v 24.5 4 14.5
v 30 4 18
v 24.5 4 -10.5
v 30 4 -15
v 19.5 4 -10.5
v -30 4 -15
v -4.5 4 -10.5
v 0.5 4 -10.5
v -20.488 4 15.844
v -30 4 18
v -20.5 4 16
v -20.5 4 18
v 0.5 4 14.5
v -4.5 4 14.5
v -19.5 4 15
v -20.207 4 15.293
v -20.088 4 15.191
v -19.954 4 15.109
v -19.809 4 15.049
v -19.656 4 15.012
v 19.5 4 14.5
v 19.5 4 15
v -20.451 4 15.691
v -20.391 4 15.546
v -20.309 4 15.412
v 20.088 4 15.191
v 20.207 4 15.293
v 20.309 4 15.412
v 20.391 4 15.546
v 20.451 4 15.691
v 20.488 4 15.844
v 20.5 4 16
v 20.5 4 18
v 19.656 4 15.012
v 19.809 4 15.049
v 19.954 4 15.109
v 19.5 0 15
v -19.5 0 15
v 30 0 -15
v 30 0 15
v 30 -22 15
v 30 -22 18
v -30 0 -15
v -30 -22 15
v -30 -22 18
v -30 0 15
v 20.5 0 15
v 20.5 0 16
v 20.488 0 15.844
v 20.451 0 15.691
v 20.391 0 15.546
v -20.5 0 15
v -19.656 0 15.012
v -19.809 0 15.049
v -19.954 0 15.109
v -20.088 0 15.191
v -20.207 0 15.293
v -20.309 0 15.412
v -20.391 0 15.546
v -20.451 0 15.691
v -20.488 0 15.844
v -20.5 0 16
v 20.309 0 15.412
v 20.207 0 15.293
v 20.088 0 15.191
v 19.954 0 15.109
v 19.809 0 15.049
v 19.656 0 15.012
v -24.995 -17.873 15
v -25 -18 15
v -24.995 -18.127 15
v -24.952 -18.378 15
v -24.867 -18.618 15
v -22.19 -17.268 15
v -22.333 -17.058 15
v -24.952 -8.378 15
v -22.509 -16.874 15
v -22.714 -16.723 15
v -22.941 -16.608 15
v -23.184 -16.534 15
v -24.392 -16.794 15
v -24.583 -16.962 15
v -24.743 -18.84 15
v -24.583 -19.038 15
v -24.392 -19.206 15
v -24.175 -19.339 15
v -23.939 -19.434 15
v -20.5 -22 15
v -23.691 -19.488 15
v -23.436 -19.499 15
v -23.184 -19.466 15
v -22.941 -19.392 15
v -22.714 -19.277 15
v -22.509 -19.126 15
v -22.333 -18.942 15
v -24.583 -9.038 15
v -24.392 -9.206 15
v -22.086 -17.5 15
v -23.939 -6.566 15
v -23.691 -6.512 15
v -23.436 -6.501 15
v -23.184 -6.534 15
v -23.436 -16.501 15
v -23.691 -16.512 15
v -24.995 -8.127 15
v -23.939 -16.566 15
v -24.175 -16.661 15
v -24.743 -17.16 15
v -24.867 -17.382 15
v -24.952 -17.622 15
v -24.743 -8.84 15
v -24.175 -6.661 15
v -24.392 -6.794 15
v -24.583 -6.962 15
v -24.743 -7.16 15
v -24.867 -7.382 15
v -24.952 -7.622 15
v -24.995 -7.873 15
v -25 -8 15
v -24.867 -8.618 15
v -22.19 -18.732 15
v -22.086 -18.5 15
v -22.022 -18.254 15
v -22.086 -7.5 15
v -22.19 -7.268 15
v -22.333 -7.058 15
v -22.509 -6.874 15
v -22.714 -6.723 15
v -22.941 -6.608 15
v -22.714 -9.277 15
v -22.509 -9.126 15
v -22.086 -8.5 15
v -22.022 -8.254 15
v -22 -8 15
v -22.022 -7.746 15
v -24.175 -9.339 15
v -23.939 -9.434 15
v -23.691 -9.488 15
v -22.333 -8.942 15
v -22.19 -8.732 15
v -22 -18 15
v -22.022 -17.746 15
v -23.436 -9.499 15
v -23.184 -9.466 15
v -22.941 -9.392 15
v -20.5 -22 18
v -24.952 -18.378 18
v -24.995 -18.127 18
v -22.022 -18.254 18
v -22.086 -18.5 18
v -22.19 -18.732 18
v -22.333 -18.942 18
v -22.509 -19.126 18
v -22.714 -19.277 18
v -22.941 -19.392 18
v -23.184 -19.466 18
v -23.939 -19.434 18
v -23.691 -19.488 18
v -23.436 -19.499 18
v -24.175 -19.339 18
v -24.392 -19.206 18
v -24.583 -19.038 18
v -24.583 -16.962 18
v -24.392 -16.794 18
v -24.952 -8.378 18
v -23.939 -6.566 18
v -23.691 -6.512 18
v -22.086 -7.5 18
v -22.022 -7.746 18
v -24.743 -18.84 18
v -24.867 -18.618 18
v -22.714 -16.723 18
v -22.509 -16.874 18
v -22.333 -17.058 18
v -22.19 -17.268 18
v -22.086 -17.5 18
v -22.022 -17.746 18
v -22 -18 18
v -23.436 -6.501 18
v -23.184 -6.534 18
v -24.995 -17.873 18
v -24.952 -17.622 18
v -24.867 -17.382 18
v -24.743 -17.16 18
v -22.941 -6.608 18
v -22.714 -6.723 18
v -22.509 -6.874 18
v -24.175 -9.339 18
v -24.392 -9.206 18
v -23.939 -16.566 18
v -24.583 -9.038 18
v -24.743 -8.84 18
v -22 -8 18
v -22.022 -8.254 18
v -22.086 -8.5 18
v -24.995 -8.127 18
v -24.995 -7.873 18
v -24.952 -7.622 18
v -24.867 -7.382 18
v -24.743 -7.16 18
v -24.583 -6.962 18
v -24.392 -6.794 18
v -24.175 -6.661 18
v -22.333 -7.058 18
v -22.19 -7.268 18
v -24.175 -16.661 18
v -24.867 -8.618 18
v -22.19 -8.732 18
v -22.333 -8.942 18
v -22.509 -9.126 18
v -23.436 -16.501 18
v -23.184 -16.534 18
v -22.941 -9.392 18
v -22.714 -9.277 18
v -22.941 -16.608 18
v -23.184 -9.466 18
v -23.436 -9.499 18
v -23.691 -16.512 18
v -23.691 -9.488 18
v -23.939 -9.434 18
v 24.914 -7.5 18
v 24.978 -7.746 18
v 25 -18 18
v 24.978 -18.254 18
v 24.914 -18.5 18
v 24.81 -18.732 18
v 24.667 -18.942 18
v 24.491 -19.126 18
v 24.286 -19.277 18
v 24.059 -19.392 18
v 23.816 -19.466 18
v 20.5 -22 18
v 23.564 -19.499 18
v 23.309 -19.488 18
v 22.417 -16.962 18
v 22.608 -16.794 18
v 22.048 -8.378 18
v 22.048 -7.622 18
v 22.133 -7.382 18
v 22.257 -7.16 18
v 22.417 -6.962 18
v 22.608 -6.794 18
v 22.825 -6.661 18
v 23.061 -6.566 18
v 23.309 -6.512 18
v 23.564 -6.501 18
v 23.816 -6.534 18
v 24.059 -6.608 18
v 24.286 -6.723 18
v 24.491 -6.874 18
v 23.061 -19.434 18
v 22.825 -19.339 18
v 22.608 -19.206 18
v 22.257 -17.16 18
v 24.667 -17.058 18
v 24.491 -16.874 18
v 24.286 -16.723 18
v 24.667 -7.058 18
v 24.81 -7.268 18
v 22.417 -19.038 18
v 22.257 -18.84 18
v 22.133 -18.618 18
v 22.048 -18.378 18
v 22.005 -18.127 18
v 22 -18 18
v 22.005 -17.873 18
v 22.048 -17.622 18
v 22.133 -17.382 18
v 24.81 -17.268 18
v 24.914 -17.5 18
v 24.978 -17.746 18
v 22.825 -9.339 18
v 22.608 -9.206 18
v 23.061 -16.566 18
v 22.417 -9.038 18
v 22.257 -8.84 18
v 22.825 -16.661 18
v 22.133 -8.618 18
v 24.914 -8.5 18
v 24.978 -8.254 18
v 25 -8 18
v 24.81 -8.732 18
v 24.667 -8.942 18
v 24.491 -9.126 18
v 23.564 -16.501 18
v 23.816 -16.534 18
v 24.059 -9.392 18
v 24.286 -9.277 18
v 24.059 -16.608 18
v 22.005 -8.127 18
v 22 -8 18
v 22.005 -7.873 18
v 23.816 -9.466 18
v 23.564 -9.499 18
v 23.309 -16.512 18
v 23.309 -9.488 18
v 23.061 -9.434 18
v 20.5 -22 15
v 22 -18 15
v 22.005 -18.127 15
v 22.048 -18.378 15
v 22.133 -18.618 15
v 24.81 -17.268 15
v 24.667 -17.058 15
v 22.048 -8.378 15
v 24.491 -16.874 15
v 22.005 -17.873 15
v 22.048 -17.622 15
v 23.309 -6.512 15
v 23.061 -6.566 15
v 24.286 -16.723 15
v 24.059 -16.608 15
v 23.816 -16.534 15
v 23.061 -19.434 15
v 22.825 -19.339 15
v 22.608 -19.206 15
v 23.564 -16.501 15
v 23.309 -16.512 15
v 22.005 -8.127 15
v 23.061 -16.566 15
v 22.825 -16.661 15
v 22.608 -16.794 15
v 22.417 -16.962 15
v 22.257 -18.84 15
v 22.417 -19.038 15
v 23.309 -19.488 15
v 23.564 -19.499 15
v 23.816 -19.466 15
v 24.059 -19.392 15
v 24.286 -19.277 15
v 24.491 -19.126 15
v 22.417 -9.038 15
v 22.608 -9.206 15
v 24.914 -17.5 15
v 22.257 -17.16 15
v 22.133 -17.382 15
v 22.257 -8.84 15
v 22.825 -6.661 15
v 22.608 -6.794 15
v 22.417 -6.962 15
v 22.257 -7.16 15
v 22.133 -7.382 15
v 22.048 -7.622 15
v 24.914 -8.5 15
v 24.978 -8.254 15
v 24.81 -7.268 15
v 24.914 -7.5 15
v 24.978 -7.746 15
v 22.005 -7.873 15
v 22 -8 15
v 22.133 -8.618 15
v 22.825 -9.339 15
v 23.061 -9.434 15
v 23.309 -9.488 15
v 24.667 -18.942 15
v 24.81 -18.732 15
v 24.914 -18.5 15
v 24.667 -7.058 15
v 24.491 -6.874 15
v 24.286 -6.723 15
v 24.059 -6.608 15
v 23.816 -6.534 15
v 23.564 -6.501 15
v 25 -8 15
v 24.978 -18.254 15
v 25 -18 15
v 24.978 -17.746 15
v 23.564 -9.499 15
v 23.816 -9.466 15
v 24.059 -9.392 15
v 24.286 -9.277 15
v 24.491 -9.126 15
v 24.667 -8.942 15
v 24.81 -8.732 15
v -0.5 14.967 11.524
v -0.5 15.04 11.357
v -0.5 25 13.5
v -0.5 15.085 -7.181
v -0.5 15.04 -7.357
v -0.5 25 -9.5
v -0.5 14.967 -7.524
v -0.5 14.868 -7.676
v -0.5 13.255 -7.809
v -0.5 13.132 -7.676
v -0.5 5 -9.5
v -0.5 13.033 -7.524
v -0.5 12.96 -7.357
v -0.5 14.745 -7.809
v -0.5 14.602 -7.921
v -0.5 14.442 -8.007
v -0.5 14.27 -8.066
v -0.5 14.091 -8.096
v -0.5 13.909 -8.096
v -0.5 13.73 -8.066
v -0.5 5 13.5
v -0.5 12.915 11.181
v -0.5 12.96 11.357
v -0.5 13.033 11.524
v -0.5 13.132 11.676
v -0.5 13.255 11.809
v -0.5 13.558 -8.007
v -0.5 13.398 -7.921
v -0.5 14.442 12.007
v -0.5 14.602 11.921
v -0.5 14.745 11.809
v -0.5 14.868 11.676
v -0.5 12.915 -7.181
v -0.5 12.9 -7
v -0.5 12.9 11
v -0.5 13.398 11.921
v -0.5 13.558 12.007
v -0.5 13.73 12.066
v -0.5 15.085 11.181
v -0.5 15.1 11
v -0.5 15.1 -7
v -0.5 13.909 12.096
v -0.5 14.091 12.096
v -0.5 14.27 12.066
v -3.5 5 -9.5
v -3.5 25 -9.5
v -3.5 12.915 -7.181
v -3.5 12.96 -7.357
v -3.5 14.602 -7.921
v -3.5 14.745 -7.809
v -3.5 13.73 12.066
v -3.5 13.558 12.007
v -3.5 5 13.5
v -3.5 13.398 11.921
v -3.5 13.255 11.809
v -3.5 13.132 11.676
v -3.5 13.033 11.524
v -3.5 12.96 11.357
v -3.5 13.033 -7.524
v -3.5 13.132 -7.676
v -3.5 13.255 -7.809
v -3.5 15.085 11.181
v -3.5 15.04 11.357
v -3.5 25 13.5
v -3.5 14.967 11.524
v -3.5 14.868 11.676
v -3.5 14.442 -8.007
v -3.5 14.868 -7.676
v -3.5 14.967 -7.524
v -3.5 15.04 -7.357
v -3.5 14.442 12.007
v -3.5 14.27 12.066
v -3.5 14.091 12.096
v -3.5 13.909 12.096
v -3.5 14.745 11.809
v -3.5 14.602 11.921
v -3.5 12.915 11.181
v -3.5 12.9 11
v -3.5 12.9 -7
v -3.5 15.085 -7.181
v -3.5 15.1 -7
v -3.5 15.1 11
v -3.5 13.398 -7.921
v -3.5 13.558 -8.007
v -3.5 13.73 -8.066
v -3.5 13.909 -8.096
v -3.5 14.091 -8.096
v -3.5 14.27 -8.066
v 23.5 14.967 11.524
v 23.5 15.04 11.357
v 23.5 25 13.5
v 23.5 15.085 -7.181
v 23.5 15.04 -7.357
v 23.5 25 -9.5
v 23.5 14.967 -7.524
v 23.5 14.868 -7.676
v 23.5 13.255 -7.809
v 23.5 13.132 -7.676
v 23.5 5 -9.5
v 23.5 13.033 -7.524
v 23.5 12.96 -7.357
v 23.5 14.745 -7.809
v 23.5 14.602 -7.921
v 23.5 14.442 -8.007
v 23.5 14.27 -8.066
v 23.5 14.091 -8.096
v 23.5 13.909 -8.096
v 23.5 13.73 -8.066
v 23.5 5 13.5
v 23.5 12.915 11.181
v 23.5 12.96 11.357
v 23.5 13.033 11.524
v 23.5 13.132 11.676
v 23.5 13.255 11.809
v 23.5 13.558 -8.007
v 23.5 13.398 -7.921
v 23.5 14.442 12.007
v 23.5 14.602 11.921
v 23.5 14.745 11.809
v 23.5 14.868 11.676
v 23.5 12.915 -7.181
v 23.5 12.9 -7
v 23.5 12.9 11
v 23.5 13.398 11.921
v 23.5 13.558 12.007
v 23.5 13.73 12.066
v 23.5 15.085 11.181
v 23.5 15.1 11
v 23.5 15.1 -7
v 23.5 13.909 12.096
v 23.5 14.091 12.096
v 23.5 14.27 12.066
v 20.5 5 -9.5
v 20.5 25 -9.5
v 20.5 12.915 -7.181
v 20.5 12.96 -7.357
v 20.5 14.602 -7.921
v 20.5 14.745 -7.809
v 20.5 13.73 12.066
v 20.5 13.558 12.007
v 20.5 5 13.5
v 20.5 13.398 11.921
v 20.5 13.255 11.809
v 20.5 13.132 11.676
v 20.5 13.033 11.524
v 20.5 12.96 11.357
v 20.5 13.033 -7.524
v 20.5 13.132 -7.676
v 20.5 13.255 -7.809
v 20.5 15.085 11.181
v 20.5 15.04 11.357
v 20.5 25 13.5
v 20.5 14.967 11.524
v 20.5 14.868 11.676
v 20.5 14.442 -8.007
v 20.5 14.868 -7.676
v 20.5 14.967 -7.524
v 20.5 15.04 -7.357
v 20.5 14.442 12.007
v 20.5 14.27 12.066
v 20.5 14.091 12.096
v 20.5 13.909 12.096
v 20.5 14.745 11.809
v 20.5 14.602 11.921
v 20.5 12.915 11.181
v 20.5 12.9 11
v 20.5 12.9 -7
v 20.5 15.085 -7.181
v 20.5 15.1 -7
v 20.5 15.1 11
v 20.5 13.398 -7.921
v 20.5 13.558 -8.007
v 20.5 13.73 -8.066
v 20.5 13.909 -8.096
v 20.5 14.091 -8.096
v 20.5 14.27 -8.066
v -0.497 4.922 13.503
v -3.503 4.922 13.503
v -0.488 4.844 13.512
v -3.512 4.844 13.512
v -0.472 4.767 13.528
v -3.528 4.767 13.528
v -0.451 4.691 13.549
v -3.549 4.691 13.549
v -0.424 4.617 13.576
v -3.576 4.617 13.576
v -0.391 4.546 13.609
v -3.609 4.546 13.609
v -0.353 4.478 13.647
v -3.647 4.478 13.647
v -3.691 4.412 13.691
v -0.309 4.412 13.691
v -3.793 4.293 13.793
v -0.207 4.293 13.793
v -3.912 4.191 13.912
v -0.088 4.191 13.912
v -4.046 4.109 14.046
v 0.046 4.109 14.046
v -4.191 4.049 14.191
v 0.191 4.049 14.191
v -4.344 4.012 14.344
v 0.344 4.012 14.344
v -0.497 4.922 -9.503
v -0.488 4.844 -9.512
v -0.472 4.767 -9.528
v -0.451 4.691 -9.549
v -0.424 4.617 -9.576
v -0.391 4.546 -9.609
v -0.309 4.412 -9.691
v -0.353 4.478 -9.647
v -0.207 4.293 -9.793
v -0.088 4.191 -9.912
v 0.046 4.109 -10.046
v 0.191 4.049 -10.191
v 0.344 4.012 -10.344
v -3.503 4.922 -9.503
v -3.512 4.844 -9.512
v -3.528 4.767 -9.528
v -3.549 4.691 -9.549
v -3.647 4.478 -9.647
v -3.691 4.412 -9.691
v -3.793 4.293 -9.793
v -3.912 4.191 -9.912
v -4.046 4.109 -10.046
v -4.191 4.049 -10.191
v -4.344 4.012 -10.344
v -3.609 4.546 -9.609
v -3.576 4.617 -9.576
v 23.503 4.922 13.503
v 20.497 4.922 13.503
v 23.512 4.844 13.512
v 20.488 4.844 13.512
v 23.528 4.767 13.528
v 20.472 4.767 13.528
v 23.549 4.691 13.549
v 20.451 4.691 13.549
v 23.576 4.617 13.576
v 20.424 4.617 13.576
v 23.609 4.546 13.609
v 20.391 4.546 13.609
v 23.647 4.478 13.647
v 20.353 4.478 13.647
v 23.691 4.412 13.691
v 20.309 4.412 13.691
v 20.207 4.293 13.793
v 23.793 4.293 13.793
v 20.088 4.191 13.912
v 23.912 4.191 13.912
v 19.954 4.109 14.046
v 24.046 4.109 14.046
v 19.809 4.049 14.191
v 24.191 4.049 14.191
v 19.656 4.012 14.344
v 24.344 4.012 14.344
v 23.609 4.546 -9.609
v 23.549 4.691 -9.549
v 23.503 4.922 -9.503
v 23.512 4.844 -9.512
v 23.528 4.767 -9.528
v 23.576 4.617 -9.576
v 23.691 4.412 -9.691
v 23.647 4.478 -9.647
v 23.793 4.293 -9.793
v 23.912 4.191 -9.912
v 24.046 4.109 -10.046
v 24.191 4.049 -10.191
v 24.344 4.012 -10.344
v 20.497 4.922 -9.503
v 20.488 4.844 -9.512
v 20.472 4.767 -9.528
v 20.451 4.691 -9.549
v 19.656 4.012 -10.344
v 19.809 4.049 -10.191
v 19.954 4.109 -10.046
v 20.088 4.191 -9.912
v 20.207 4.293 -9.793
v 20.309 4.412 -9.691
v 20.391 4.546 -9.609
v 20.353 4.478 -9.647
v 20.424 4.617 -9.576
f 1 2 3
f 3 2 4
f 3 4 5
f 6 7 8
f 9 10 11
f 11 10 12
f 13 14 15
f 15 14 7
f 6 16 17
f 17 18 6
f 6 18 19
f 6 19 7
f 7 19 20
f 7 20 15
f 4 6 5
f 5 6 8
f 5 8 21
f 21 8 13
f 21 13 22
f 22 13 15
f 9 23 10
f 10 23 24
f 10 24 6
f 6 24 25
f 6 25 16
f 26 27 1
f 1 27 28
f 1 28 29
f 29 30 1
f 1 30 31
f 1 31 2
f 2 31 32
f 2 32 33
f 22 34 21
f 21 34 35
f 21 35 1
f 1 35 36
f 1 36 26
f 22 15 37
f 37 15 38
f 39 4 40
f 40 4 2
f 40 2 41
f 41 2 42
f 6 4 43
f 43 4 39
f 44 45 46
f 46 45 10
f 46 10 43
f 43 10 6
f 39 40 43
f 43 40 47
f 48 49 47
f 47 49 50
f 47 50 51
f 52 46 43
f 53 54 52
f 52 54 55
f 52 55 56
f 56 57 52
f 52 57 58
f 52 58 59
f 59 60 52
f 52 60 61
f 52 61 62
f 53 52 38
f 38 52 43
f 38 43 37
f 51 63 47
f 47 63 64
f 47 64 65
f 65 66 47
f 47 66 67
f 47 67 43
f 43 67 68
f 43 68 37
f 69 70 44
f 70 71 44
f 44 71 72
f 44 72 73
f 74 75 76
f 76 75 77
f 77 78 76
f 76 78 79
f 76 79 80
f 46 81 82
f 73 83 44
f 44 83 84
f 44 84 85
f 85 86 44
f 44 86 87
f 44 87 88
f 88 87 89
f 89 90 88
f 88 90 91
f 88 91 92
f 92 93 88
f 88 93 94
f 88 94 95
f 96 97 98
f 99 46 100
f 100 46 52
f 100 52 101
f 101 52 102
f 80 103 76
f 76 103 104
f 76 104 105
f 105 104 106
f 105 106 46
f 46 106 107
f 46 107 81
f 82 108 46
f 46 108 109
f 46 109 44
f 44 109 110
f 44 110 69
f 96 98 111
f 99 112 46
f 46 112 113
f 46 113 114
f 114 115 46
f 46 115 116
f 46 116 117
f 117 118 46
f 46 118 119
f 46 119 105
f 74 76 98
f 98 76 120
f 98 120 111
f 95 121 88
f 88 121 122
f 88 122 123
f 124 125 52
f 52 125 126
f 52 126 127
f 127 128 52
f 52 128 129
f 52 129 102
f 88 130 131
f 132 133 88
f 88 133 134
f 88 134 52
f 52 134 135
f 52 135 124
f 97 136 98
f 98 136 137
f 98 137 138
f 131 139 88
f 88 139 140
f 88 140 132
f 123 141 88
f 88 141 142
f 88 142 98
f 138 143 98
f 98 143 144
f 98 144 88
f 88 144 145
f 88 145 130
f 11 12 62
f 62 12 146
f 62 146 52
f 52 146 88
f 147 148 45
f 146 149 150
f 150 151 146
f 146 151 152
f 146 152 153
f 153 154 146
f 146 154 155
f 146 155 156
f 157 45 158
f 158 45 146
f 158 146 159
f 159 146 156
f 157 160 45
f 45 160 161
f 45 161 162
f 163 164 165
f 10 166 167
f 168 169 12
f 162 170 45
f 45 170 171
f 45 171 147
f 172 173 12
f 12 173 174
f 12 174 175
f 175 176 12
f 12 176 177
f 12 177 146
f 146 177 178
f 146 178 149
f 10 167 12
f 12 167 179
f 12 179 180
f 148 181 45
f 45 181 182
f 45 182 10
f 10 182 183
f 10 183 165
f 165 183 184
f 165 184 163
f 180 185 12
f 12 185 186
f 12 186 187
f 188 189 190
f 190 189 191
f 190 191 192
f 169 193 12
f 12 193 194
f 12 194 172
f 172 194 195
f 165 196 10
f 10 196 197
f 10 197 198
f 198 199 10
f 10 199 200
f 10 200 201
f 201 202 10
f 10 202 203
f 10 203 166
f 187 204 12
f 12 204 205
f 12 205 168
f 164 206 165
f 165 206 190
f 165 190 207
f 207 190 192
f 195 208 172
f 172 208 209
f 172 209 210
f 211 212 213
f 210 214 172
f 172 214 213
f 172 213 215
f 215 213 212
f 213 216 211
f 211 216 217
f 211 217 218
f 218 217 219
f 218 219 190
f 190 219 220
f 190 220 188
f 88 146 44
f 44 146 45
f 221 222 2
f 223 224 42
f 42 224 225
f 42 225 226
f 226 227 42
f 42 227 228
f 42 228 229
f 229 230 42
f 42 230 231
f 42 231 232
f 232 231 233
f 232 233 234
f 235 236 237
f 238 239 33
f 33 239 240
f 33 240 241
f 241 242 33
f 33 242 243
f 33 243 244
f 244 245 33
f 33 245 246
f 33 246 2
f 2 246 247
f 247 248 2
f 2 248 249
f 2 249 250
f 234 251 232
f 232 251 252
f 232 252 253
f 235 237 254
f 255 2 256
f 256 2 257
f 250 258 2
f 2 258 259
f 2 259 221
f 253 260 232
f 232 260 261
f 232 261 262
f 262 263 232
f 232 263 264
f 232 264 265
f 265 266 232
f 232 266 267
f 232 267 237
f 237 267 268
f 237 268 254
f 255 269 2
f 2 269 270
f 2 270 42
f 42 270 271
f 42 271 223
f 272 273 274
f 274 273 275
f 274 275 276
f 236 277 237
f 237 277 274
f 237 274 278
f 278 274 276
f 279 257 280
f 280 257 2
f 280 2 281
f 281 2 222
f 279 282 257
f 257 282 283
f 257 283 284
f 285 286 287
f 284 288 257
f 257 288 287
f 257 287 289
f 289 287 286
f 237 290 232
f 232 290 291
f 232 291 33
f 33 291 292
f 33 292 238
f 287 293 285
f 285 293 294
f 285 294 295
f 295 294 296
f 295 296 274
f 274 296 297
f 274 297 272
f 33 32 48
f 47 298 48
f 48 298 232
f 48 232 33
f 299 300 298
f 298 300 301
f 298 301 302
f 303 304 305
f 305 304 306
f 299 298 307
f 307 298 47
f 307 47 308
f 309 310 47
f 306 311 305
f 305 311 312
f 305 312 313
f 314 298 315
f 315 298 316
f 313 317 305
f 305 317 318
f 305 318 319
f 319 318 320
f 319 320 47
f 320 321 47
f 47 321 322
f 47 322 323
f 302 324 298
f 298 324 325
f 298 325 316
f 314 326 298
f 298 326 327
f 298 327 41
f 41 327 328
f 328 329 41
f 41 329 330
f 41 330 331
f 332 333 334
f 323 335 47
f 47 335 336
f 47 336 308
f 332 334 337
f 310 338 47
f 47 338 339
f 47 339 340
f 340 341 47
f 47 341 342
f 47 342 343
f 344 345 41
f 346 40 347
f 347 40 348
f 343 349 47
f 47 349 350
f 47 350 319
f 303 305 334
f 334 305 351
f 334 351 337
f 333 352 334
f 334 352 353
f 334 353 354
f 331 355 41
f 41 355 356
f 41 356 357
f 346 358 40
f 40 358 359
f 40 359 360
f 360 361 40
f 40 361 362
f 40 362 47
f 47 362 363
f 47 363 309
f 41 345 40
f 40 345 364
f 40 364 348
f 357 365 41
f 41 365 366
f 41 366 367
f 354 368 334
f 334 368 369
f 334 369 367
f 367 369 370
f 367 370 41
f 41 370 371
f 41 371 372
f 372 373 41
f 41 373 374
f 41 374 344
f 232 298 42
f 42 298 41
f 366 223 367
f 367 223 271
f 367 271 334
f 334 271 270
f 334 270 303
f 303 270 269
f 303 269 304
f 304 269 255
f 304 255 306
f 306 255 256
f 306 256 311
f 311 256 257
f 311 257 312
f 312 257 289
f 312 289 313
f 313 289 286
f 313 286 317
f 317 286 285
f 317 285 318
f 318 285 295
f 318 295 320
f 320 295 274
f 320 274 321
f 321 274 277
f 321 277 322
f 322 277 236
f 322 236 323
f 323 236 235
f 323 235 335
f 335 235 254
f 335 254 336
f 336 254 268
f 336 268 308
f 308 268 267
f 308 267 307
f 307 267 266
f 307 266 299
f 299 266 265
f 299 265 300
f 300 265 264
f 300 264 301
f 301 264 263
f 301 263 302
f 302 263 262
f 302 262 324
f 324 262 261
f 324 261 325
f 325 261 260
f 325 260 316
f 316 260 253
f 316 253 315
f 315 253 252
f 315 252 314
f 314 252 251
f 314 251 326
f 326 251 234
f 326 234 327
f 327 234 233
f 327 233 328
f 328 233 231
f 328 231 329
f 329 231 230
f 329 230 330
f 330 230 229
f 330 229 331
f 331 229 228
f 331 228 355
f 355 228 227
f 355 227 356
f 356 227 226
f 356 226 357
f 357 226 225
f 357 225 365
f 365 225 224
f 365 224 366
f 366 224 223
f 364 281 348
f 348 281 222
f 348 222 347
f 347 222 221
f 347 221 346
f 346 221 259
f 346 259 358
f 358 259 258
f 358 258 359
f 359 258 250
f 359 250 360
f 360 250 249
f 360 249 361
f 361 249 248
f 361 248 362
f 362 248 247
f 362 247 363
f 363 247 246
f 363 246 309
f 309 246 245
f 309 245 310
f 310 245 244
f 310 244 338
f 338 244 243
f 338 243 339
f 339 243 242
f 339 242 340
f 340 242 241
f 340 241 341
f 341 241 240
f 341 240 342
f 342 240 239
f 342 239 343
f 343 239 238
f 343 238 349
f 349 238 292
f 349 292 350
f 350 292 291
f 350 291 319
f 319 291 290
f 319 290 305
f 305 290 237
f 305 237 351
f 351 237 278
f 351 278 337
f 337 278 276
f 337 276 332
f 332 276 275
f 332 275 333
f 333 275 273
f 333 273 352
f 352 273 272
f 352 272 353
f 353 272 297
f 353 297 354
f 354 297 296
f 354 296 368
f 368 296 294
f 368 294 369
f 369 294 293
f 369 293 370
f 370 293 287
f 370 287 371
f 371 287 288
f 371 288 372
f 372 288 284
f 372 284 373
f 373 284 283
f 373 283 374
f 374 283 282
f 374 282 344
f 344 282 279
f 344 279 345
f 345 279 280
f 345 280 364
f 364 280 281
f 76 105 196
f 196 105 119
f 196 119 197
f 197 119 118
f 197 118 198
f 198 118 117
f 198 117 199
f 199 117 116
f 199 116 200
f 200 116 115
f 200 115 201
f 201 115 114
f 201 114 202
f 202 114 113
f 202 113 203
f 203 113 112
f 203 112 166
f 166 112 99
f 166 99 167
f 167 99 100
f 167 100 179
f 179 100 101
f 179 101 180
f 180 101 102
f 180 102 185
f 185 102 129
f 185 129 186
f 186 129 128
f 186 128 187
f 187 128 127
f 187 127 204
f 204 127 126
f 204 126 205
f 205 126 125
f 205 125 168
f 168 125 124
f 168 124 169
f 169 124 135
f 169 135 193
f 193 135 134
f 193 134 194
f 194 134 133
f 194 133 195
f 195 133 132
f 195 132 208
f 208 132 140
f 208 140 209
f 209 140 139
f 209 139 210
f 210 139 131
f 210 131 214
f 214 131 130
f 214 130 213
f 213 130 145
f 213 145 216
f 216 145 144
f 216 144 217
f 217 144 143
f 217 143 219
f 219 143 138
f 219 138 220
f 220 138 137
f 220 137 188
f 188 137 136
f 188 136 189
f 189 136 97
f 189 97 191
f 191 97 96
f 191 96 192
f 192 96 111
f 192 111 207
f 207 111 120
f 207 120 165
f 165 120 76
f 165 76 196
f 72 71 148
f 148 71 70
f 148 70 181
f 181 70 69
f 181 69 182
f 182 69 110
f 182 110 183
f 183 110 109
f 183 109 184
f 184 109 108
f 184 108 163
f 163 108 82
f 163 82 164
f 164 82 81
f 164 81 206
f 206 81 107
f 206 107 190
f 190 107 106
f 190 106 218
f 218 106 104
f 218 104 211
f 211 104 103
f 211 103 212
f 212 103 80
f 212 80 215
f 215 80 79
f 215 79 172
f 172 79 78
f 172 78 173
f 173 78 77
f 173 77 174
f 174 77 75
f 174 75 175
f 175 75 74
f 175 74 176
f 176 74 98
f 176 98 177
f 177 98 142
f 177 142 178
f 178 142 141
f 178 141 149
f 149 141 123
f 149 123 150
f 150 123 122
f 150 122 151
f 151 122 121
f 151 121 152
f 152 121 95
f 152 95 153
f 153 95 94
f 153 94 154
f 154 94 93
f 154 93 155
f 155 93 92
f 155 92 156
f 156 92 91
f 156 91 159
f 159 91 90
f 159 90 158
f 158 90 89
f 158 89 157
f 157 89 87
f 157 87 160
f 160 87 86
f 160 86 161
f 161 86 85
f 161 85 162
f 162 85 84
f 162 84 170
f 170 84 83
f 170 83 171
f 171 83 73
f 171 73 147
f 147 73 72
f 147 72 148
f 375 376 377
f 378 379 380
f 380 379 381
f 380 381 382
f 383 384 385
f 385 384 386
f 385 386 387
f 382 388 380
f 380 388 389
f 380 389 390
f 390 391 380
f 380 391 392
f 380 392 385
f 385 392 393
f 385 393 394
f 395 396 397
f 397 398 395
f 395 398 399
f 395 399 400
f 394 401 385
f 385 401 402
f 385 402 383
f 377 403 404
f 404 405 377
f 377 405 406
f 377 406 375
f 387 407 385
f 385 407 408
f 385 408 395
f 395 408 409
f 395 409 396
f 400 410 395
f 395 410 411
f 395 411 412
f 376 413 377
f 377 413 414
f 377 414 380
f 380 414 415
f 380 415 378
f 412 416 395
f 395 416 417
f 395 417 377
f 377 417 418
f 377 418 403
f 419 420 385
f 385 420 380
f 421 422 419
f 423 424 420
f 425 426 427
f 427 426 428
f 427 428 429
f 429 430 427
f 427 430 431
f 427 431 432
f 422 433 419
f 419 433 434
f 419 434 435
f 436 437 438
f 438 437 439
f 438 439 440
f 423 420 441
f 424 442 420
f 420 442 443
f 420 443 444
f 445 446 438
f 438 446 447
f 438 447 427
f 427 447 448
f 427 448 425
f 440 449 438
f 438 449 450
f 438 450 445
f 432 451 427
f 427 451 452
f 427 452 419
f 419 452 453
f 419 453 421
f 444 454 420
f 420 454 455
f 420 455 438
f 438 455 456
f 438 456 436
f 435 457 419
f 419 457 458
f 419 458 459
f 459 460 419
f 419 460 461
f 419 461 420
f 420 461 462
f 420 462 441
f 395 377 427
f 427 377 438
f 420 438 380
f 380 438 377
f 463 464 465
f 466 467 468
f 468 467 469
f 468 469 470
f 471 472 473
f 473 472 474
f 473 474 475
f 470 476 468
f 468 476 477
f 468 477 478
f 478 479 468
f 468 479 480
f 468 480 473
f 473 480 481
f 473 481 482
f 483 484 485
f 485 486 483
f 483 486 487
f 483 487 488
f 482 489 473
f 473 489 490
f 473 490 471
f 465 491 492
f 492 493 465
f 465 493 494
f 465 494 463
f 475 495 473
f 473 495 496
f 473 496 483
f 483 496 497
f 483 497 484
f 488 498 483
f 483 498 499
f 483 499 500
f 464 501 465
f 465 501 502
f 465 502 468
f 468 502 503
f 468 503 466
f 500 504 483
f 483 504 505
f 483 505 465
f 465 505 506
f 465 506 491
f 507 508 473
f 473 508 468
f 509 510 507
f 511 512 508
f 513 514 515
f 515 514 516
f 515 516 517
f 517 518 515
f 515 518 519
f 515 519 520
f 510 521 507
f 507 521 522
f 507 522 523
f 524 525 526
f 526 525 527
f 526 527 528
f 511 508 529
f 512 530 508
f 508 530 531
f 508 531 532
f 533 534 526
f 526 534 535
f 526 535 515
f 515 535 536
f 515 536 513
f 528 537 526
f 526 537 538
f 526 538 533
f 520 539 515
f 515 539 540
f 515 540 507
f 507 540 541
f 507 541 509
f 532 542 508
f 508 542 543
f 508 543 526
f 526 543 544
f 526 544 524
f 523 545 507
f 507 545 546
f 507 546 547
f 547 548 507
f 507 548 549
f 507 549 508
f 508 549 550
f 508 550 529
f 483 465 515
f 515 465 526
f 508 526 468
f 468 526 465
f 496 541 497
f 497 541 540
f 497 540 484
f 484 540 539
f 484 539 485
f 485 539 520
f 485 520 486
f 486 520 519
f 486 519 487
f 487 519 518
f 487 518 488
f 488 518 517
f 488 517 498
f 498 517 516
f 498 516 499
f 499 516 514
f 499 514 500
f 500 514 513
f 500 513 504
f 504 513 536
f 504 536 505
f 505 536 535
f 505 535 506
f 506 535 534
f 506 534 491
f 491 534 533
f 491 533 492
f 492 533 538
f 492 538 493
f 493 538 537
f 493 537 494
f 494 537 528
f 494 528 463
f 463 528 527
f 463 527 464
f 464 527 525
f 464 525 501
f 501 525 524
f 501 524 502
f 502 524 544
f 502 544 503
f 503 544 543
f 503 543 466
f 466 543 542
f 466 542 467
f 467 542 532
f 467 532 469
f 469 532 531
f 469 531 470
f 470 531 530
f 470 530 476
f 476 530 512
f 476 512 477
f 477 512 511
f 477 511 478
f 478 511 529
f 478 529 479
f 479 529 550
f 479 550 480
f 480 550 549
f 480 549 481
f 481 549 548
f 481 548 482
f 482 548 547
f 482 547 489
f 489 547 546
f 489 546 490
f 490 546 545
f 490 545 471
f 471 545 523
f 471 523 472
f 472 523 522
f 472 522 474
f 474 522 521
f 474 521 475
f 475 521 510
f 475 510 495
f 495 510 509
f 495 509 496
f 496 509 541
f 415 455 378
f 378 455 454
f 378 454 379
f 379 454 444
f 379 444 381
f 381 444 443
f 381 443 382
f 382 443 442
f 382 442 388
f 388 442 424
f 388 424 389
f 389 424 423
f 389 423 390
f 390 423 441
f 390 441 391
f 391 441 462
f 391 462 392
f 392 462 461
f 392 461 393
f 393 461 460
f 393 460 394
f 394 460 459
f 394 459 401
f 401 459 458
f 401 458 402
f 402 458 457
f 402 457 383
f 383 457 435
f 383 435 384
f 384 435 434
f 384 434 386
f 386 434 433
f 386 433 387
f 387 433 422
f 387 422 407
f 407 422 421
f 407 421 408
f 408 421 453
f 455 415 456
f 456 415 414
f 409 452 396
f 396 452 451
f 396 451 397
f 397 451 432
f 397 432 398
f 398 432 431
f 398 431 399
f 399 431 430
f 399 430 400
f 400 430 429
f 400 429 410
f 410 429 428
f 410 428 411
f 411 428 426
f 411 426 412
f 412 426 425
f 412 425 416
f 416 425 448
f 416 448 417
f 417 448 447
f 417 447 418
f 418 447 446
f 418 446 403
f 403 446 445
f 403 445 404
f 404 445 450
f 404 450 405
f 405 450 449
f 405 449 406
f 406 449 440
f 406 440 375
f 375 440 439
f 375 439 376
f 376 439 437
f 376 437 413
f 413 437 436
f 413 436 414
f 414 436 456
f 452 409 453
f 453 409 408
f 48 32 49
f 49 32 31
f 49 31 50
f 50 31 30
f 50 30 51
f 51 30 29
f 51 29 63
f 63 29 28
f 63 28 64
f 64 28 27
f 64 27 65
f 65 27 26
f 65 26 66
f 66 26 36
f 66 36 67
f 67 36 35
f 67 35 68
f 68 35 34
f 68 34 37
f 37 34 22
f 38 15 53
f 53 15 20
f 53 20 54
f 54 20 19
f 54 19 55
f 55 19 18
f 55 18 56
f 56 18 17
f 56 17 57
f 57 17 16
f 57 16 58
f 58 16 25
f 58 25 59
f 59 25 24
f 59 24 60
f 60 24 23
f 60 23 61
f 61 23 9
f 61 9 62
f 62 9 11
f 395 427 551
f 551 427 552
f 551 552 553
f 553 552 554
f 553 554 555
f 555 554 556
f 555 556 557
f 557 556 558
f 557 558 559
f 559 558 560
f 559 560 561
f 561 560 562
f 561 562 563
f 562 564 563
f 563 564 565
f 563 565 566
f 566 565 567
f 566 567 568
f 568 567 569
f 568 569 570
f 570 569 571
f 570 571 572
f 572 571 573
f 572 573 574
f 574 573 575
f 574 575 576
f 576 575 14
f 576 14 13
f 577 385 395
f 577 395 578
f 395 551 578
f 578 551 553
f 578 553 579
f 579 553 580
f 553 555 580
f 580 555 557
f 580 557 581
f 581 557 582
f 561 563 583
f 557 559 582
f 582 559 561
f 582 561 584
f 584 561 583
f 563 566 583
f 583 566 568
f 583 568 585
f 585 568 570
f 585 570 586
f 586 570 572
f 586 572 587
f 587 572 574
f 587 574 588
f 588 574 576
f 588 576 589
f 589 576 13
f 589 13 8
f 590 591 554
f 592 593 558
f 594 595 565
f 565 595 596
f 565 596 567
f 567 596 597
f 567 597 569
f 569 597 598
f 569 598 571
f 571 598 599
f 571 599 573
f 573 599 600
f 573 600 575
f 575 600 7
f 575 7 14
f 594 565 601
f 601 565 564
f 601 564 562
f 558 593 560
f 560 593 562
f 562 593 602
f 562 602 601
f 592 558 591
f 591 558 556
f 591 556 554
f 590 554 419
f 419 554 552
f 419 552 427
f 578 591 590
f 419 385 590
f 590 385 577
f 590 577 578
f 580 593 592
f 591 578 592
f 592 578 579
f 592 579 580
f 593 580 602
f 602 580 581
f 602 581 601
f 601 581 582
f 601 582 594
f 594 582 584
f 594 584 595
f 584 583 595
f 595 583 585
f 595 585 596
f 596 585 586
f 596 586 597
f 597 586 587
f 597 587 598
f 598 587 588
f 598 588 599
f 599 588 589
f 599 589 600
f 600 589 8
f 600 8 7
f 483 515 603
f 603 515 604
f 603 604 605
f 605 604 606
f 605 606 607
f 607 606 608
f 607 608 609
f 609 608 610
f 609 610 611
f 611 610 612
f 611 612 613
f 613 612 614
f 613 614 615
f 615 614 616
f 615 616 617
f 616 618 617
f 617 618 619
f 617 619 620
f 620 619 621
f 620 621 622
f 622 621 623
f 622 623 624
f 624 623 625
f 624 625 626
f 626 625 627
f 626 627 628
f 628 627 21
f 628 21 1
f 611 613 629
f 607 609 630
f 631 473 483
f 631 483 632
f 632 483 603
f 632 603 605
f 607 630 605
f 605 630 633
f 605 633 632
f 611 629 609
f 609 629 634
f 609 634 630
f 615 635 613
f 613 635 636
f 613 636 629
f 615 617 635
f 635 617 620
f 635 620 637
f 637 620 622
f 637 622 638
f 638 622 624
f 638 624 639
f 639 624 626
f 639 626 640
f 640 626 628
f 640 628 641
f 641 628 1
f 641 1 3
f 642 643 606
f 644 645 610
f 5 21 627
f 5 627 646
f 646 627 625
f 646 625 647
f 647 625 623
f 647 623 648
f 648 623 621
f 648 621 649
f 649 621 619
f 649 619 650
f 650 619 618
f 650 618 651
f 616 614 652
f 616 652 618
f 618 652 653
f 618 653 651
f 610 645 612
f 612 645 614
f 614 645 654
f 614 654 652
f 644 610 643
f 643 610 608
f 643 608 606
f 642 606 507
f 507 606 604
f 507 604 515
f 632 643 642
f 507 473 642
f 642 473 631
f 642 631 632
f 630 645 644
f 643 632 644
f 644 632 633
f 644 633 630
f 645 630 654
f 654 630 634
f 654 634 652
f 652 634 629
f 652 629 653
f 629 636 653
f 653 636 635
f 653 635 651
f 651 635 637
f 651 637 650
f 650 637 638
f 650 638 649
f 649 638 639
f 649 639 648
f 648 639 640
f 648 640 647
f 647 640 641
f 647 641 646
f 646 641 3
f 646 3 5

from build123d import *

# Parameters (mm, degrees)
SKETCH1_W           = 60
SKETCH1_H           = 30
BOSS_EXTRUDE1_DEPTH = 4
SKETCH2_W           = 9.5
SKETCH2_H           = 3
BOSS_EXTRUDE2_DEPTH = 26
SKETCH3_R           = 1.5
CUT_EXTRUDE1_DEPTH  = 4
SKETCH4_W           = 3
SKETCH4_H           = 23
BOSS_EXTRUDE4_DEPTH = 21
CUT_EXTRUDE2_DEPTH  = 27
FILLET1_R           = 1


with BuildPart() as part:
    # Sketch1 → Boss-Extrude1 (new body)
    with BuildSketch(Plane(origin=(0, 0, 0), x_dir=(1, 0, 0), z_dir=(0, 1, 0))):
        Rectangle(SKETCH1_W, SKETCH1_H)
    extrude(amount=BOSS_EXTRUDE1_DEPTH)

    # Sketch2 → Boss-Extrude2 (add)
    with BuildSketch(Plane(origin=(0, 4, 0), x_dir=(1, 0, 0), z_dir=(0, 1, 0))):
        with Locations((-25.25, -16.5)):
            Rectangle(SKETCH2_W, SKETCH2_H)
        with Locations((25.25, -16.5)):
            Rectangle(SKETCH2_W, SKETCH2_H)
    extrude(amount=-BOSS_EXTRUDE2_DEPTH)

    # Sketch3 → Cut-Extrude1 (cut)
    with BuildSketch(Plane.XY.offset(18)):
        with Locations((-23.5, -8)):
            Circle(SKETCH3_R)
        with Locations((-23.5, -18)):
            Circle(SKETCH3_R)
        with Locations(Location((23.5, -18, 0), (0, 0, 180))):
            Circle(SKETCH3_R)
        with Locations(Location((23.5, -8, 0), (0, 0, 180))):
            Circle(SKETCH3_R)
    extrude(amount=-CUT_EXTRUDE1_DEPTH, mode=Mode.SUBTRACT)

    # Sketch4 → Boss-Extrude4 (add)
    with BuildSketch(Plane(origin=(0, 4, 0), x_dir=(1, 0, 0), z_dir=(0, 1, 0))):
        with Locations((-2, -2)):
            Rectangle(SKETCH4_W, SKETCH4_H)
        with Locations((22, -2)):
            Rectangle(SKETCH4_W, SKETCH4_H)
    extrude(amount=BOSS_EXTRUDE4_DEPTH)

    # Sketch5 → Cut-Extrude2 (cut)
    with BuildSketch(Plane.ZY.offset(3.5)):
        with BuildLine():
            Line((-7, 15.1), (11, 15.1))
            ThreePointArc((11, 15.1), (12.1, 14), (11, 12.9))
            Line((11, 12.9), (-7, 12.9))
            ThreePointArc((-7, 12.9), (-8.1, 14), (-7, 15.1))
        make_face()
    extrude(amount=-CUT_EXTRUDE2_DEPTH, mode=Mode.SUBTRACT)

    # Fillet1
    # the kernel refuses this fillet: 1 mm, written as the material it adds along each edge
    with BuildSketch(Plane(origin=(-20.5, 4, 15), x_dir=(1, 0, 0), z_dir=(0, -1, 0))) as fillet1_piece_1_section:
        with BuildLine():
            CenterArc((FILLET1_R, FILLET1_R), FILLET1_R, 180, 90)
            Line((0, FILLET1_R), (-FILLET1_R * 0.02, FILLET1_R))
            Line((-FILLET1_R * 0.02, FILLET1_R), (-FILLET1_R * 0.02, -FILLET1_R * 0.02))
            Line((-FILLET1_R * 0.02, -FILLET1_R * 0.02), (FILLET1_R, -FILLET1_R * 0.02))
            Line((FILLET1_R, -FILLET1_R * 0.02), (FILLET1_R, 0))
        make_face()
    fillet1_piece_1 = extrude(amount=4, mode=Mode.PRIVATE)
    fillet1_piece_1 = split(fillet1_piece_1, bisect_by=Plane(origin=(-20.29652687, 2, 15), z_dir=(0, 0, 1)), keep=Keep.TOP, mode=Mode.PRIVATE)
    add(fillet1_piece_1)
    with BuildSketch(Plane(origin=(20.5, 4, 15), x_dir=(-1, 0, 0), z_dir=(0, -1, 0))) as fillet1_piece_2_section:
        with BuildLine():
            CenterArc((FILLET1_R, -FILLET1_R), FILLET1_R, 90, 90)
            Line((0, -FILLET1_R), (-FILLET1_R * 0.02, -FILLET1_R))
            Line((-FILLET1_R * 0.02, -FILLET1_R), (-FILLET1_R * 0.02, FILLET1_R * 0.02))
            Line((-FILLET1_R * 0.02, FILLET1_R * 0.02), (FILLET1_R, FILLET1_R * 0.02))
            Line((FILLET1_R, FILLET1_R * 0.02), (FILLET1_R, 0))
        make_face()
    fillet1_piece_2 = extrude(amount=4, mode=Mode.PRIVATE)
    fillet1_piece_2 = split(fillet1_piece_2, bisect_by=Plane(origin=(20.29652687, 2, 15), z_dir=(0, 0, 1)), keep=Keep.TOP, mode=Mode.PRIVATE)
    add(fillet1_piece_2)
    with BuildSketch(Plane(origin=(-0.5, 4, 13.5), x_dir=(1, 0, 0), z_dir=(0, 0, -1)), Plane(origin=(-3.5, 4, -9.5), x_dir=(-1, 0, 0), z_dir=(0, 0, 1)), Plane(origin=(23.5, 4, 13.5), x_dir=(1, 0, 0), z_dir=(0, 0, -1)), Plane(origin=(20.5, 4, -9.5), x_dir=(-1, 0, 0), z_dir=(0, 0, 1))) as fillet1_piece_3:
        with BuildLine():
            CenterArc((FILLET1_R, -FILLET1_R), FILLET1_R, 90, 90)
            Line((0, -FILLET1_R), (-FILLET1_R * 0.02, -FILLET1_R))
            Line((-FILLET1_R * 0.02, -FILLET1_R), (-FILLET1_R * 0.02, FILLET1_R * 0.02))
            Line((-FILLET1_R * 0.02, FILLET1_R * 0.02), (FILLET1_R, FILLET1_R * 0.02))
            Line((FILLET1_R, FILLET1_R * 0.02), (FILLET1_R, 0))
        make_face()
    extrude(amount=23)
    with BuildSketch(Plane(origin=(-0.5, 4, -9.5), x_dir=(0, 0, -1), z_dir=(-1, 0, 0)), Plane(origin=(-3.5, 4, 13.5), x_dir=(0, 0, 1), z_dir=(1, 0, 0)), Plane(origin=(23.5, 4, -9.5), x_dir=(0, 0, -1), z_dir=(-1, 0, 0)), Plane(origin=(20.5, 4, 13.5), x_dir=(0, 0, 1), z_dir=(1, 0, 0))) as fillet1_piece_4:
        with BuildLine():
            CenterArc((FILLET1_R, -FILLET1_R), FILLET1_R, 90, 90)
            Line((0, -FILLET1_R), (-FILLET1_R * 0.02, -FILLET1_R))
            Line((-FILLET1_R * 0.02, -FILLET1_R), (-FILLET1_R * 0.02, FILLET1_R * 0.02))
            Line((-FILLET1_R * 0.02, FILLET1_R * 0.02), (FILLET1_R, FILLET1_R * 0.02))
            Line((FILLET1_R, FILLET1_R * 0.02), (FILLET1_R, 0))
        make_face()
    extrude(amount=3)
    with BuildSketch(Plane(origin=(-3.5, 4, 13.5), x_dir=(0, 0, 1), z_dir=(1, 0, 0))) as fillet1_piece_5a_section:
        with BuildLine():
            CenterArc((FILLET1_R, -FILLET1_R), FILLET1_R, 90, 90)
            Line((0, -FILLET1_R), (-FILLET1_R * 0.02, -FILLET1_R))
            Line((-FILLET1_R * 0.02, -FILLET1_R), (-FILLET1_R * 0.02, FILLET1_R * 0.02))
            Line((-FILLET1_R * 0.02, FILLET1_R * 0.02), (FILLET1_R, FILLET1_R * 0.02))
            Line((FILLET1_R, FILLET1_R * 0.02), (FILLET1_R, 0))
        make_face()
    fillet1_piece_5a = extrude(amount=5.5, mode=Mode.PRIVATE)
    fillet1_piece_5a = split(fillet1_piece_5a, bisect_by=Plane(origin=(-0.5, 4.226395114, 13.726395114), z_dir=(1, 0, 0)), keep=Keep.TOP, mode=Mode.PRIVATE)
    with BuildSketch(Plane(origin=(-0.5, 4, 16), x_dir=(1, 0, 0), z_dir=(0, 0, -1))) as fillet1_piece_5b_section:
        with BuildLine():
            CenterArc((FILLET1_R, -FILLET1_R), FILLET1_R, 90, 90)
            Line((0, -FILLET1_R), (-FILLET1_R * 0.02, -FILLET1_R))
            Line((-FILLET1_R * 0.02, -FILLET1_R), (-FILLET1_R * 0.02, FILLET1_R * 0.02))
            Line((-FILLET1_R * 0.02, FILLET1_R * 0.02), (FILLET1_R, FILLET1_R * 0.02))
            Line((FILLET1_R, FILLET1_R * 0.02), (FILLET1_R, 0))
        make_face()
    fillet1_piece_5b = extrude(amount=25.5, mode=Mode.PRIVATE)
    fillet1_piece_5b = split(fillet1_piece_5b, bisect_by=Plane(origin=(-0.273604886, 4.226395114, 13.5), z_dir=(0, 0, 1)), keep=Keep.TOP, mode=Mode.PRIVATE)
    fillet1_piece_5 = fillet1_piece_5a & fillet1_piece_5b
    add(fillet1_piece_5)
    with BuildSketch(Plane(origin=(-0.5, 4, 13.5), x_dir=(1, 0, 0), z_dir=(0, 0, -1))) as fillet1_piece_6a_section:
        with BuildLine():
            CenterArc((FILLET1_R, -FILLET1_R), FILLET1_R, 90, 90)
            Line((0, -FILLET1_R), (-FILLET1_R * 0.02, -FILLET1_R))
            Line((-FILLET1_R * 0.02, -FILLET1_R), (-FILLET1_R * 0.02, FILLET1_R * 0.02))
            Line((-FILLET1_R * 0.02, FILLET1_R * 0.02), (FILLET1_R, FILLET1_R * 0.02))
            Line((FILLET1_R, FILLET1_R * 0.02), (FILLET1_R, 0))
        make_face()
    fillet1_piece_6a = extrude(amount=25.5, mode=Mode.PRIVATE)
    fillet1_piece_6a = split(fillet1_piece_6a, bisect_by=Plane(origin=(-0.273604886, 4.226395114, -9.5), z_dir=(0, 0, -1)), keep=Keep.TOP, mode=Mode.PRIVATE)
    with BuildSketch(Plane(origin=(2, 4, -9.5), x_dir=(0, 0, -1), z_dir=(-1, 0, 0))) as fillet1_piece_6b_section:
        with BuildLine():
            CenterArc((FILLET1_R, -FILLET1_R), FILLET1_R, 90, 90)
            Line((0, -FILLET1_R), (-FILLET1_R * 0.02, -FILLET1_R))
            Line((-FILLET1_R * 0.02, -FILLET1_R), (-FILLET1_R * 0.02, FILLET1_R * 0.02))
            Line((-FILLET1_R * 0.02, FILLET1_R * 0.02), (FILLET1_R, FILLET1_R * 0.02))
            Line((FILLET1_R, FILLET1_R * 0.02), (FILLET1_R, 0))
        make_face()
    fillet1_piece_6b = extrude(amount=5.5, mode=Mode.PRIVATE)
    fillet1_piece_6b = split(fillet1_piece_6b, bisect_by=Plane(origin=(-0.5, 4.226395114, -9.726395114), z_dir=(1, 0, 0)), keep=Keep.TOP, mode=Mode.PRIVATE)
    fillet1_piece_6 = fillet1_piece_6a & fillet1_piece_6b
    add(fillet1_piece_6)
    with BuildSketch(Plane(origin=(-0.5, 4, -9.5), x_dir=(0, 0, -1), z_dir=(-1, 0, 0))) as fillet1_piece_7a_section:
        with BuildLine():
            CenterArc((FILLET1_R, -FILLET1_R), FILLET1_R, 90, 90)
            Line((0, -FILLET1_R), (-FILLET1_R * 0.02, -FILLET1_R))
            Line((-FILLET1_R * 0.02, -FILLET1_R), (-FILLET1_R * 0.02, FILLET1_R * 0.02))
            Line((-FILLET1_R * 0.02, FILLET1_R * 0.02), (FILLET1_R, FILLET1_R * 0.02))
            Line((FILLET1_R, FILLET1_R * 0.02), (FILLET1_R, 0))
        make_face()
    fillet1_piece_7a = extrude(amount=5.5, mode=Mode.PRIVATE)
    fillet1_piece_7a = split(fillet1_piece_7a, bisect_by=Plane(origin=(-3.5, 4.226395114, -9.726395114), z_dir=(-1, 0, 0)), keep=Keep.TOP, mode=Mode.PRIVATE)
    with BuildSketch(Plane(origin=(-3.5, 4, -12), x_dir=(-1, 0, 0), z_dir=(0, 0, 1))) as fillet1_piece_7b_section:
        with BuildLine():
            CenterArc((FILLET1_R, -FILLET1_R), FILLET1_R, 90, 90)
            Line((0, -FILLET1_R), (-FILLET1_R * 0.02, -FILLET1_R))
            Line((-FILLET1_R * 0.02, -FILLET1_R), (-FILLET1_R * 0.02, FILLET1_R * 0.02))
            Line((-FILLET1_R * 0.02, FILLET1_R * 0.02), (FILLET1_R, FILLET1_R * 0.02))
            Line((FILLET1_R, FILLET1_R * 0.02), (FILLET1_R, 0))
        make_face()
    fillet1_piece_7b = extrude(amount=25.5, mode=Mode.PRIVATE)
    fillet1_piece_7b = split(fillet1_piece_7b, bisect_by=Plane(origin=(-3.726395114, 4.226395114, -9.5), z_dir=(0, 0, -1)), keep=Keep.TOP, mode=Mode.PRIVATE)
    fillet1_piece_7 = fillet1_piece_7a & fillet1_piece_7b
    add(fillet1_piece_7)
    with BuildSketch(Plane(origin=(-6, 4, 13.5), x_dir=(0, 0, 1), z_dir=(1, 0, 0))) as fillet1_piece_8a_section:
        with BuildLine():
            CenterArc((FILLET1_R, -FILLET1_R), FILLET1_R, 90, 90)
            Line((0, -FILLET1_R), (-FILLET1_R * 0.02, -FILLET1_R))
            Line((-FILLET1_R * 0.02, -FILLET1_R), (-FILLET1_R * 0.02, FILLET1_R * 0.02))
            Line((-FILLET1_R * 0.02, FILLET1_R * 0.02), (FILLET1_R, FILLET1_R * 0.02))
            Line((FILLET1_R, FILLET1_R * 0.02), (FILLET1_R, 0))
        make_face()
    fillet1_piece_8a = extrude(amount=5.5, mode=Mode.PRIVATE)
    fillet1_piece_8a = split(fillet1_piece_8a, bisect_by=Plane(origin=(-3.5, 4.226395114, 13.726395114), z_dir=(-1, 0, 0)), keep=Keep.TOP, mode=Mode.PRIVATE)
    with BuildSketch(Plane(origin=(-3.5, 4, -9.5), x_dir=(-1, 0, 0), z_dir=(0, 0, 1))) as fillet1_piece_8b_section:
        with BuildLine():
            CenterArc((FILLET1_R, -FILLET1_R), FILLET1_R, 90, 90)
            Line((0, -FILLET1_R), (-FILLET1_R * 0.02, -FILLET1_R))
            Line((-FILLET1_R * 0.02, -FILLET1_R), (-FILLET1_R * 0.02, FILLET1_R * 0.02))
            Line((-FILLET1_R * 0.02, FILLET1_R * 0.02), (FILLET1_R, FILLET1_R * 0.02))
            Line((FILLET1_R, FILLET1_R * 0.02), (FILLET1_R, 0))
        make_face()
    fillet1_piece_8b = extrude(amount=25.5, mode=Mode.PRIVATE)
    fillet1_piece_8b = split(fillet1_piece_8b, bisect_by=Plane(origin=(-3.726395114, 4.226395114, 13.5), z_dir=(0, 0, 1)), keep=Keep.TOP, mode=Mode.PRIVATE)
    fillet1_piece_8 = fillet1_piece_8a & fillet1_piece_8b
    add(fillet1_piece_8)
    with BuildSketch(Plane(origin=(20.5, 4, 13.5), x_dir=(0, 0, 1), z_dir=(1, 0, 0))) as fillet1_piece_9a_section:
        with BuildLine():
            CenterArc((FILLET1_R, -FILLET1_R), FILLET1_R, 90, 90)
            Line((0, -FILLET1_R), (-FILLET1_R * 0.02, -FILLET1_R))
            Line((-FILLET1_R * 0.02, -FILLET1_R), (-FILLET1_R * 0.02, FILLET1_R * 0.02))
            Line((-FILLET1_R * 0.02, FILLET1_R * 0.02), (FILLET1_R, FILLET1_R * 0.02))
            Line((FILLET1_R, FILLET1_R * 0.02), (FILLET1_R, 0))
        make_face()
    fillet1_piece_9a = extrude(amount=5.5, mode=Mode.PRIVATE)
    fillet1_piece_9a = split(fillet1_piece_9a, bisect_by=Plane(origin=(23.5, 4.226395114, 13.726395114), z_dir=(1, 0, 0)), keep=Keep.TOP, mode=Mode.PRIVATE)
    with BuildSketch(Plane(origin=(23.5, 4, 16), x_dir=(1, 0, 0), z_dir=(0, 0, -1))) as fillet1_piece_9b_section:
        with BuildLine():
            CenterArc((FILLET1_R, -FILLET1_R), FILLET1_R, 90, 90)
            Line((0, -FILLET1_R), (-FILLET1_R * 0.02, -FILLET1_R))
            Line((-FILLET1_R * 0.02, -FILLET1_R), (-FILLET1_R * 0.02, FILLET1_R * 0.02))
            Line((-FILLET1_R * 0.02, FILLET1_R * 0.02), (FILLET1_R, FILLET1_R * 0.02))
            Line((FILLET1_R, FILLET1_R * 0.02), (FILLET1_R, 0))
        make_face()
    fillet1_piece_9b = extrude(amount=25.5, mode=Mode.PRIVATE)
    fillet1_piece_9b = split(fillet1_piece_9b, bisect_by=Plane(origin=(23.726395114, 4.226395114, 13.5), z_dir=(0, 0, 1)), keep=Keep.TOP, mode=Mode.PRIVATE)
    fillet1_piece_9 = fillet1_piece_9a & fillet1_piece_9b
    add(fillet1_piece_9)
    with BuildSketch(Plane(origin=(26, 4, -9.5), x_dir=(0, 0, -1), z_dir=(-1, 0, 0))) as fillet1_piece_10a_section:
        with BuildLine():
            CenterArc((FILLET1_R, -FILLET1_R), FILLET1_R, 90, 90)
            Line((0, -FILLET1_R), (-FILLET1_R * 0.02, -FILLET1_R))
            Line((-FILLET1_R * 0.02, -FILLET1_R), (-FILLET1_R * 0.02, FILLET1_R * 0.02))
            Line((-FILLET1_R * 0.02, FILLET1_R * 0.02), (FILLET1_R, FILLET1_R * 0.02))
            Line((FILLET1_R, FILLET1_R * 0.02), (FILLET1_R, 0))
        make_face()
    fillet1_piece_10a = extrude(amount=5.5, mode=Mode.PRIVATE)
    fillet1_piece_10a = split(fillet1_piece_10a, bisect_by=Plane(origin=(23.5, 4.226395114, -9.726395114), z_dir=(1, 0, 0)), keep=Keep.TOP, mode=Mode.PRIVATE)
    with BuildSketch(Plane(origin=(23.5, 4, 13.5), x_dir=(1, 0, 0), z_dir=(0, 0, -1))) as fillet1_piece_10b_section:
        with BuildLine():
            CenterArc((FILLET1_R, -FILLET1_R), FILLET1_R, 90, 90)
            Line((0, -FILLET1_R), (-FILLET1_R * 0.02, -FILLET1_R))
            Line((-FILLET1_R * 0.02, -FILLET1_R), (-FILLET1_R * 0.02, FILLET1_R * 0.02))
            Line((-FILLET1_R * 0.02, FILLET1_R * 0.02), (FILLET1_R, FILLET1_R * 0.02))
            Line((FILLET1_R, FILLET1_R * 0.02), (FILLET1_R, 0))
        make_face()
    fillet1_piece_10b = extrude(amount=25.5, mode=Mode.PRIVATE)
    fillet1_piece_10b = split(fillet1_piece_10b, bisect_by=Plane(origin=(23.726395114, 4.226395114, -9.5), z_dir=(0, 0, -1)), keep=Keep.TOP, mode=Mode.PRIVATE)
    fillet1_piece_10 = fillet1_piece_10a & fillet1_piece_10b
    add(fillet1_piece_10)
    with BuildSketch(Plane(origin=(23.5, 4, -9.5), x_dir=(0, 0, -1), z_dir=(-1, 0, 0))) as fillet1_piece_11a_section:
        with BuildLine():
            CenterArc((FILLET1_R, -FILLET1_R), FILLET1_R, 90, 90)
            Line((0, -FILLET1_R), (-FILLET1_R * 0.02, -FILLET1_R))
            Line((-FILLET1_R * 0.02, -FILLET1_R), (-FILLET1_R * 0.02, FILLET1_R * 0.02))
            Line((-FILLET1_R * 0.02, FILLET1_R * 0.02), (FILLET1_R, FILLET1_R * 0.02))
            Line((FILLET1_R, FILLET1_R * 0.02), (FILLET1_R, 0))
        make_face()
    fillet1_piece_11a = extrude(amount=5.5, mode=Mode.PRIVATE)
    fillet1_piece_11a = split(fillet1_piece_11a, bisect_by=Plane(origin=(20.5, 4.226395114, -9.726395114), z_dir=(-1, 0, 0)), keep=Keep.TOP, mode=Mode.PRIVATE)
    with BuildSketch(Plane(origin=(20.5, 4, -12), x_dir=(-1, 0, 0), z_dir=(0, 0, 1))) as fillet1_piece_11b_section:
        with BuildLine():
            CenterArc((FILLET1_R, -FILLET1_R), FILLET1_R, 90, 90)
            Line((0, -FILLET1_R), (-FILLET1_R * 0.02, -FILLET1_R))
            Line((-FILLET1_R * 0.02, -FILLET1_R), (-FILLET1_R * 0.02, FILLET1_R * 0.02))
            Line((-FILLET1_R * 0.02, FILLET1_R * 0.02), (FILLET1_R, FILLET1_R * 0.02))
            Line((FILLET1_R, FILLET1_R * 0.02), (FILLET1_R, 0))
        make_face()
    fillet1_piece_11b = extrude(amount=25.5, mode=Mode.PRIVATE)
    fillet1_piece_11b = split(fillet1_piece_11b, bisect_by=Plane(origin=(20.273604886, 4.226395114, -9.5), z_dir=(0, 0, -1)), keep=Keep.TOP, mode=Mode.PRIVATE)
    fillet1_piece_11 = fillet1_piece_11a & fillet1_piece_11b
    add(fillet1_piece_11)
    with BuildSketch(Plane(origin=(20.5, 4, -9.5), x_dir=(-1, 0, 0), z_dir=(0, 0, 1))) as fillet1_piece_12a_section:
        with BuildLine():
            CenterArc((FILLET1_R, -FILLET1_R), FILLET1_R, 90, 90)
            Line((0, -FILLET1_R), (-FILLET1_R * 0.02, -FILLET1_R))
            Line((-FILLET1_R * 0.02, -FILLET1_R), (-FILLET1_R * 0.02, FILLET1_R * 0.02))
            Line((-FILLET1_R * 0.02, FILLET1_R * 0.02), (FILLET1_R, FILLET1_R * 0.02))
            Line((FILLET1_R, FILLET1_R * 0.02), (FILLET1_R, 0))
        make_face()
    fillet1_piece_12a = extrude(amount=25.5, mode=Mode.PRIVATE)
    fillet1_piece_12a = split(fillet1_piece_12a, bisect_by=Plane(origin=(20.273604886, 4.226395114, 13.5), z_dir=(0, 0, 1)), keep=Keep.TOP, mode=Mode.PRIVATE)
    with BuildSketch(Plane(origin=(18, 4, 13.5), x_dir=(0, 0, 1), z_dir=(1, 0, 0))) as fillet1_piece_12b_section:
        with BuildLine():
            CenterArc((FILLET1_R, -FILLET1_R), FILLET1_R, 90, 90)
            Line((0, -FILLET1_R), (-FILLET1_R * 0.02, -FILLET1_R))
            Line((-FILLET1_R * 0.02, -FILLET1_R), (-FILLET1_R * 0.02, FILLET1_R * 0.02))
            Line((-FILLET1_R * 0.02, FILLET1_R * 0.02), (FILLET1_R, FILLET1_R * 0.02))
            Line((FILLET1_R, FILLET1_R * 0.02), (FILLET1_R, 0))
        make_face()
    fillet1_piece_12b = extrude(amount=5.5, mode=Mode.PRIVATE)
    fillet1_piece_12b = split(fillet1_piece_12b, bisect_by=Plane(origin=(20.5, 4.226395114, 13.726395114), z_dir=(-1, 0, 0)), keep=Keep.TOP, mode=Mode.PRIVATE)
    fillet1_piece_12 = fillet1_piece_12a & fillet1_piece_12b
    add(fillet1_piece_12)


solid = part.part
